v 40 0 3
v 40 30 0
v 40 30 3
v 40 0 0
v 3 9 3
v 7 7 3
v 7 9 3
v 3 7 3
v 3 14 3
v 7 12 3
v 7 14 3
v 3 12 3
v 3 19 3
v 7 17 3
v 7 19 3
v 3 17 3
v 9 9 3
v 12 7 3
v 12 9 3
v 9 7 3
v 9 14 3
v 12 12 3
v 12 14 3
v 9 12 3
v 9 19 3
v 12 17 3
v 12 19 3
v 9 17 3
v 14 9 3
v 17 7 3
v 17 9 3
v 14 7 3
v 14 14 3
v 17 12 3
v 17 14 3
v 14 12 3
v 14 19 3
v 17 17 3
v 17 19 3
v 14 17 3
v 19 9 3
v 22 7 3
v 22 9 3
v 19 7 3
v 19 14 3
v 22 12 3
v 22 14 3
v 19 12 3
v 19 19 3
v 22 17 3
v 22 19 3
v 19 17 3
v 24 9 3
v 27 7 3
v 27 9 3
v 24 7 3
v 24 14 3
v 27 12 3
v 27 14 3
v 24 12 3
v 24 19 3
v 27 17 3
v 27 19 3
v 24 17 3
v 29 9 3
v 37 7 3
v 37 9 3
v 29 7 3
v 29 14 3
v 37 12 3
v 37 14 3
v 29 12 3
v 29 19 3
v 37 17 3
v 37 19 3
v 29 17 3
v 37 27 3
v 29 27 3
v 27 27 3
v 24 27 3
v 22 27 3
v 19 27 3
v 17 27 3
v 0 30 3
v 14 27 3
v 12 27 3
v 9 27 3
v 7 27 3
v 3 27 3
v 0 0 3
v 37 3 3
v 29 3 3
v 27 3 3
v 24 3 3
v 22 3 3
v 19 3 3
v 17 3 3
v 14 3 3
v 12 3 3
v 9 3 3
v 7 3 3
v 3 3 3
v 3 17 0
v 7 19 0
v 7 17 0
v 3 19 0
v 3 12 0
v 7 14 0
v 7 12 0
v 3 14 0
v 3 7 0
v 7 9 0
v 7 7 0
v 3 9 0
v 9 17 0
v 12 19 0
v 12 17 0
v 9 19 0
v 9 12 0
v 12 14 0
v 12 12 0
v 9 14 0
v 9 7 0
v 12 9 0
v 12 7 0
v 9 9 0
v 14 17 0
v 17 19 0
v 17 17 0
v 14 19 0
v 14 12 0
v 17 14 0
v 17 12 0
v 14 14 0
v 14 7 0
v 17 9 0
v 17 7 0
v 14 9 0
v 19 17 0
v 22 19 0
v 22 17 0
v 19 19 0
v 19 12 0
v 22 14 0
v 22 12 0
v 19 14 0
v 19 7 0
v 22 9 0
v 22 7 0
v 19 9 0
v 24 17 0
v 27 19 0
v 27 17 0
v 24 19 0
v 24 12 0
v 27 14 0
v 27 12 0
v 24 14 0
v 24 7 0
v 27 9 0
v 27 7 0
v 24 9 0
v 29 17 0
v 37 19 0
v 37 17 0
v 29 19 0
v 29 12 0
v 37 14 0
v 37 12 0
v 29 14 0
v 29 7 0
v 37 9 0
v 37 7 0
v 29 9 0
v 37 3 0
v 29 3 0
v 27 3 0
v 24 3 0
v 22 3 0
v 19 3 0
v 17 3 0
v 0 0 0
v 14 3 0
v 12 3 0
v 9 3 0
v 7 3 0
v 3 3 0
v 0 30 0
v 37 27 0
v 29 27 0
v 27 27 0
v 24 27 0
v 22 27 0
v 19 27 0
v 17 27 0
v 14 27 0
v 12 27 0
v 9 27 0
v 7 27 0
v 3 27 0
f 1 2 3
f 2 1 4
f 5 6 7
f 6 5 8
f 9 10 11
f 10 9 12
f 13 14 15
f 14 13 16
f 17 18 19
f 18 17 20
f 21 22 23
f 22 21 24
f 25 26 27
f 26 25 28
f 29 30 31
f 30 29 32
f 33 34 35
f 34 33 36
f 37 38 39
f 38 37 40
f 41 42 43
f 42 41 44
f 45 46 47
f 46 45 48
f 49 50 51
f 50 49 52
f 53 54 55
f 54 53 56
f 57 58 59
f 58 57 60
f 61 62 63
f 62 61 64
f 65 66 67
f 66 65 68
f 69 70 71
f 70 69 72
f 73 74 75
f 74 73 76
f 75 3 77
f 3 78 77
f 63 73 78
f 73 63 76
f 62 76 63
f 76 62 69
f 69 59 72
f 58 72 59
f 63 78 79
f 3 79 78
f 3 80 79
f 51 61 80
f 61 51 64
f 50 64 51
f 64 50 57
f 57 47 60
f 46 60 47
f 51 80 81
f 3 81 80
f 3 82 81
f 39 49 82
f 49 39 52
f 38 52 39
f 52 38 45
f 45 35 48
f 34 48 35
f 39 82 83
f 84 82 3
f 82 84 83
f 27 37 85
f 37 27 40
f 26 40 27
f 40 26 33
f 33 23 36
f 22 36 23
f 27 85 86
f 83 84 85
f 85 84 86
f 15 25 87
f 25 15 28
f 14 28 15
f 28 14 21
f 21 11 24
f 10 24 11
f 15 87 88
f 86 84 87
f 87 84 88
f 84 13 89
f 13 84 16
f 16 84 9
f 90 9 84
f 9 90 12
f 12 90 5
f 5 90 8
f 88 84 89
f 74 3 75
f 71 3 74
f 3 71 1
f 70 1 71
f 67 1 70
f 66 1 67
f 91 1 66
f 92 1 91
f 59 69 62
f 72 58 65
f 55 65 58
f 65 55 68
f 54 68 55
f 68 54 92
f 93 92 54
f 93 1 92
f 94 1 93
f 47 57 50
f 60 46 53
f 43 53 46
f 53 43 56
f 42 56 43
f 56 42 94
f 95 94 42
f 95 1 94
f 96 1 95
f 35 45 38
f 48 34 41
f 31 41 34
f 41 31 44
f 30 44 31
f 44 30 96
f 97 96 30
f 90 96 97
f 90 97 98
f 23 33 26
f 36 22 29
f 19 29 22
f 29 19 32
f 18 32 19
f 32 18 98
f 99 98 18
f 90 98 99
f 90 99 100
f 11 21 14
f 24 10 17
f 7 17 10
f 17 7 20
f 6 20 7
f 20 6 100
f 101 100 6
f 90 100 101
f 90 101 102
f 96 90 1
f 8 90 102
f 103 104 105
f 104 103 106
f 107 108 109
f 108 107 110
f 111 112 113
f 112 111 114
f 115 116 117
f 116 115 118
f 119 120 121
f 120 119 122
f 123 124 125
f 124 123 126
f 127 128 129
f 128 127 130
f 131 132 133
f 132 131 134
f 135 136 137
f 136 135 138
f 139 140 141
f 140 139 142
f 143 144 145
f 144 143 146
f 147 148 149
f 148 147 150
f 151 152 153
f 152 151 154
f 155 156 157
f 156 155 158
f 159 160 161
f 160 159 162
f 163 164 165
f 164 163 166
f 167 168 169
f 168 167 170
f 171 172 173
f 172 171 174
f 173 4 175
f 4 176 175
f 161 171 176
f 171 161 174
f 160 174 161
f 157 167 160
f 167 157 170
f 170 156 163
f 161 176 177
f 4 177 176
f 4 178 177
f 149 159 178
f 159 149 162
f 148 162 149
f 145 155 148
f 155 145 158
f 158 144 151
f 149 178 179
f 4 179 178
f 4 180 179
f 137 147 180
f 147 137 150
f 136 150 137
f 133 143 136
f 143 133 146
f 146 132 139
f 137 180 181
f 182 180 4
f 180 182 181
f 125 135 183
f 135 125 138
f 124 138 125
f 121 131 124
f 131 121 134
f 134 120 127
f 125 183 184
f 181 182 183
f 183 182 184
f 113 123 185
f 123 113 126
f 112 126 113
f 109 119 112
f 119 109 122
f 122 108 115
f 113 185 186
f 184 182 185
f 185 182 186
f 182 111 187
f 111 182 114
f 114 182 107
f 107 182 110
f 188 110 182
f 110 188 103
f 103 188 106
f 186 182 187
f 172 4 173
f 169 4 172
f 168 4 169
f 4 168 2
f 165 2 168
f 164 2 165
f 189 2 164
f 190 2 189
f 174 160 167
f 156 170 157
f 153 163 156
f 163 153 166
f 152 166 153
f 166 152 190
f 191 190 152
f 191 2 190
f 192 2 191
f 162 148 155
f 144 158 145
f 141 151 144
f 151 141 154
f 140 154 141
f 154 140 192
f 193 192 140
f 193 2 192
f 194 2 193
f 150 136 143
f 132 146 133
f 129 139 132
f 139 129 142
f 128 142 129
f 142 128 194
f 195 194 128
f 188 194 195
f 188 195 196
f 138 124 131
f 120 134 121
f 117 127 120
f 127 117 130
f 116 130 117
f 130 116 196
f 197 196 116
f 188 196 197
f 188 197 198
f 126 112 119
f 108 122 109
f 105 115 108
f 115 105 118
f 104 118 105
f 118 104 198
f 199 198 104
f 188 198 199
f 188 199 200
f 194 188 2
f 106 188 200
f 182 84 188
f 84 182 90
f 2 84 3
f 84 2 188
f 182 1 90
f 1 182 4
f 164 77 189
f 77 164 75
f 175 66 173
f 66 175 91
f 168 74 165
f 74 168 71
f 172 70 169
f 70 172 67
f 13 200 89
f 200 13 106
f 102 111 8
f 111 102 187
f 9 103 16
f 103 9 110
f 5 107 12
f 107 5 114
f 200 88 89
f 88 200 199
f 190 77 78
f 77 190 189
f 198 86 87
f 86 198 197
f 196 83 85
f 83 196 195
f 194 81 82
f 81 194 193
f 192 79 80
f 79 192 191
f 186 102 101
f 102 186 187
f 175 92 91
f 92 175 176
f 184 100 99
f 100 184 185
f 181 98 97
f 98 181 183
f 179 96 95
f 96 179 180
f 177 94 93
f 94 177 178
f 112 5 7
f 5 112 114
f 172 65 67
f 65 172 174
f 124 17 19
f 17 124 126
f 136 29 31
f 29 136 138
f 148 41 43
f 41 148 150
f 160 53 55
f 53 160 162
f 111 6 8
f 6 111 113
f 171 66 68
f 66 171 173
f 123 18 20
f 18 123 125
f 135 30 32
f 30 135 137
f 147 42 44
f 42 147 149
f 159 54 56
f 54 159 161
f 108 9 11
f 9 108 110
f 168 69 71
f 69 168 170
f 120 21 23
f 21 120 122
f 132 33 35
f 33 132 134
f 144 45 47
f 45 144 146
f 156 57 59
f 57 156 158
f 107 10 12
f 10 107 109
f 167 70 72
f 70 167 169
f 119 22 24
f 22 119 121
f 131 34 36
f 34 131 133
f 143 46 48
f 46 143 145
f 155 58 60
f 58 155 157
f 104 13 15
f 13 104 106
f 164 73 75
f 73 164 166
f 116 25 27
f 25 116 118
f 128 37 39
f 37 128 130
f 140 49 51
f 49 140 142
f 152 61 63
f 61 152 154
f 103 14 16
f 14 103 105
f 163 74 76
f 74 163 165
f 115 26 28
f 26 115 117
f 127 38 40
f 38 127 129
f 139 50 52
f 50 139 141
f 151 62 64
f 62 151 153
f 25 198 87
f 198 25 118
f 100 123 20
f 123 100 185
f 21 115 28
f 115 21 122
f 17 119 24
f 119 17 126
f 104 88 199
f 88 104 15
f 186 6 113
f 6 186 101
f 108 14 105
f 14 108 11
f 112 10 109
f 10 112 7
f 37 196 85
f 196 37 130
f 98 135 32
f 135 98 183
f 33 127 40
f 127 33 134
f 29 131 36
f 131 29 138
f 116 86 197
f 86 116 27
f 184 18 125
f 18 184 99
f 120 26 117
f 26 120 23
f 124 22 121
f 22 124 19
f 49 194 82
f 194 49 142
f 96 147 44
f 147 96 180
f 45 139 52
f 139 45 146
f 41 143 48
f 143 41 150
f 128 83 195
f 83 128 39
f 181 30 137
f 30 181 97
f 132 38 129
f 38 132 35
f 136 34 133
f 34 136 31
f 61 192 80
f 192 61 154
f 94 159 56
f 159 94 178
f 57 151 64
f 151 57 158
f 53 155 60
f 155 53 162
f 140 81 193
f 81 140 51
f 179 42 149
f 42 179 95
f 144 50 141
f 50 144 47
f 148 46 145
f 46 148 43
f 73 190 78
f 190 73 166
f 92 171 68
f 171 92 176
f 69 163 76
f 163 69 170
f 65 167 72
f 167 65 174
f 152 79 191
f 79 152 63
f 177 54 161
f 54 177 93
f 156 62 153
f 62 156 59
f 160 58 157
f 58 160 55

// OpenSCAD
// Parametric grill/mesh
width = 40;
height = 30;
thickness = 3;
bar_width = 2;
spacing = 5;

difference() {
    // Frame
    cube([width, height, thickness]);
    
    // Cut out center
    translate([thickness, thickness, -1])
        cube([width - 2*thickness, height - 2*thickness, thickness + 2]);
}

// Horizontal bars
for (y = [thickness + spacing : spacing : height - thickness - spacing]) {
    translate([0, y - bar_width/2, 0])
        cube([width, bar_width, thickness]);
}

// Vertical bars
for (x = [thickness + spacing : spacing : width - thickness - spacing]) {
    translate([x - bar_width/2, 0, 0])
        cube([bar_width, height, thickness]);
}
